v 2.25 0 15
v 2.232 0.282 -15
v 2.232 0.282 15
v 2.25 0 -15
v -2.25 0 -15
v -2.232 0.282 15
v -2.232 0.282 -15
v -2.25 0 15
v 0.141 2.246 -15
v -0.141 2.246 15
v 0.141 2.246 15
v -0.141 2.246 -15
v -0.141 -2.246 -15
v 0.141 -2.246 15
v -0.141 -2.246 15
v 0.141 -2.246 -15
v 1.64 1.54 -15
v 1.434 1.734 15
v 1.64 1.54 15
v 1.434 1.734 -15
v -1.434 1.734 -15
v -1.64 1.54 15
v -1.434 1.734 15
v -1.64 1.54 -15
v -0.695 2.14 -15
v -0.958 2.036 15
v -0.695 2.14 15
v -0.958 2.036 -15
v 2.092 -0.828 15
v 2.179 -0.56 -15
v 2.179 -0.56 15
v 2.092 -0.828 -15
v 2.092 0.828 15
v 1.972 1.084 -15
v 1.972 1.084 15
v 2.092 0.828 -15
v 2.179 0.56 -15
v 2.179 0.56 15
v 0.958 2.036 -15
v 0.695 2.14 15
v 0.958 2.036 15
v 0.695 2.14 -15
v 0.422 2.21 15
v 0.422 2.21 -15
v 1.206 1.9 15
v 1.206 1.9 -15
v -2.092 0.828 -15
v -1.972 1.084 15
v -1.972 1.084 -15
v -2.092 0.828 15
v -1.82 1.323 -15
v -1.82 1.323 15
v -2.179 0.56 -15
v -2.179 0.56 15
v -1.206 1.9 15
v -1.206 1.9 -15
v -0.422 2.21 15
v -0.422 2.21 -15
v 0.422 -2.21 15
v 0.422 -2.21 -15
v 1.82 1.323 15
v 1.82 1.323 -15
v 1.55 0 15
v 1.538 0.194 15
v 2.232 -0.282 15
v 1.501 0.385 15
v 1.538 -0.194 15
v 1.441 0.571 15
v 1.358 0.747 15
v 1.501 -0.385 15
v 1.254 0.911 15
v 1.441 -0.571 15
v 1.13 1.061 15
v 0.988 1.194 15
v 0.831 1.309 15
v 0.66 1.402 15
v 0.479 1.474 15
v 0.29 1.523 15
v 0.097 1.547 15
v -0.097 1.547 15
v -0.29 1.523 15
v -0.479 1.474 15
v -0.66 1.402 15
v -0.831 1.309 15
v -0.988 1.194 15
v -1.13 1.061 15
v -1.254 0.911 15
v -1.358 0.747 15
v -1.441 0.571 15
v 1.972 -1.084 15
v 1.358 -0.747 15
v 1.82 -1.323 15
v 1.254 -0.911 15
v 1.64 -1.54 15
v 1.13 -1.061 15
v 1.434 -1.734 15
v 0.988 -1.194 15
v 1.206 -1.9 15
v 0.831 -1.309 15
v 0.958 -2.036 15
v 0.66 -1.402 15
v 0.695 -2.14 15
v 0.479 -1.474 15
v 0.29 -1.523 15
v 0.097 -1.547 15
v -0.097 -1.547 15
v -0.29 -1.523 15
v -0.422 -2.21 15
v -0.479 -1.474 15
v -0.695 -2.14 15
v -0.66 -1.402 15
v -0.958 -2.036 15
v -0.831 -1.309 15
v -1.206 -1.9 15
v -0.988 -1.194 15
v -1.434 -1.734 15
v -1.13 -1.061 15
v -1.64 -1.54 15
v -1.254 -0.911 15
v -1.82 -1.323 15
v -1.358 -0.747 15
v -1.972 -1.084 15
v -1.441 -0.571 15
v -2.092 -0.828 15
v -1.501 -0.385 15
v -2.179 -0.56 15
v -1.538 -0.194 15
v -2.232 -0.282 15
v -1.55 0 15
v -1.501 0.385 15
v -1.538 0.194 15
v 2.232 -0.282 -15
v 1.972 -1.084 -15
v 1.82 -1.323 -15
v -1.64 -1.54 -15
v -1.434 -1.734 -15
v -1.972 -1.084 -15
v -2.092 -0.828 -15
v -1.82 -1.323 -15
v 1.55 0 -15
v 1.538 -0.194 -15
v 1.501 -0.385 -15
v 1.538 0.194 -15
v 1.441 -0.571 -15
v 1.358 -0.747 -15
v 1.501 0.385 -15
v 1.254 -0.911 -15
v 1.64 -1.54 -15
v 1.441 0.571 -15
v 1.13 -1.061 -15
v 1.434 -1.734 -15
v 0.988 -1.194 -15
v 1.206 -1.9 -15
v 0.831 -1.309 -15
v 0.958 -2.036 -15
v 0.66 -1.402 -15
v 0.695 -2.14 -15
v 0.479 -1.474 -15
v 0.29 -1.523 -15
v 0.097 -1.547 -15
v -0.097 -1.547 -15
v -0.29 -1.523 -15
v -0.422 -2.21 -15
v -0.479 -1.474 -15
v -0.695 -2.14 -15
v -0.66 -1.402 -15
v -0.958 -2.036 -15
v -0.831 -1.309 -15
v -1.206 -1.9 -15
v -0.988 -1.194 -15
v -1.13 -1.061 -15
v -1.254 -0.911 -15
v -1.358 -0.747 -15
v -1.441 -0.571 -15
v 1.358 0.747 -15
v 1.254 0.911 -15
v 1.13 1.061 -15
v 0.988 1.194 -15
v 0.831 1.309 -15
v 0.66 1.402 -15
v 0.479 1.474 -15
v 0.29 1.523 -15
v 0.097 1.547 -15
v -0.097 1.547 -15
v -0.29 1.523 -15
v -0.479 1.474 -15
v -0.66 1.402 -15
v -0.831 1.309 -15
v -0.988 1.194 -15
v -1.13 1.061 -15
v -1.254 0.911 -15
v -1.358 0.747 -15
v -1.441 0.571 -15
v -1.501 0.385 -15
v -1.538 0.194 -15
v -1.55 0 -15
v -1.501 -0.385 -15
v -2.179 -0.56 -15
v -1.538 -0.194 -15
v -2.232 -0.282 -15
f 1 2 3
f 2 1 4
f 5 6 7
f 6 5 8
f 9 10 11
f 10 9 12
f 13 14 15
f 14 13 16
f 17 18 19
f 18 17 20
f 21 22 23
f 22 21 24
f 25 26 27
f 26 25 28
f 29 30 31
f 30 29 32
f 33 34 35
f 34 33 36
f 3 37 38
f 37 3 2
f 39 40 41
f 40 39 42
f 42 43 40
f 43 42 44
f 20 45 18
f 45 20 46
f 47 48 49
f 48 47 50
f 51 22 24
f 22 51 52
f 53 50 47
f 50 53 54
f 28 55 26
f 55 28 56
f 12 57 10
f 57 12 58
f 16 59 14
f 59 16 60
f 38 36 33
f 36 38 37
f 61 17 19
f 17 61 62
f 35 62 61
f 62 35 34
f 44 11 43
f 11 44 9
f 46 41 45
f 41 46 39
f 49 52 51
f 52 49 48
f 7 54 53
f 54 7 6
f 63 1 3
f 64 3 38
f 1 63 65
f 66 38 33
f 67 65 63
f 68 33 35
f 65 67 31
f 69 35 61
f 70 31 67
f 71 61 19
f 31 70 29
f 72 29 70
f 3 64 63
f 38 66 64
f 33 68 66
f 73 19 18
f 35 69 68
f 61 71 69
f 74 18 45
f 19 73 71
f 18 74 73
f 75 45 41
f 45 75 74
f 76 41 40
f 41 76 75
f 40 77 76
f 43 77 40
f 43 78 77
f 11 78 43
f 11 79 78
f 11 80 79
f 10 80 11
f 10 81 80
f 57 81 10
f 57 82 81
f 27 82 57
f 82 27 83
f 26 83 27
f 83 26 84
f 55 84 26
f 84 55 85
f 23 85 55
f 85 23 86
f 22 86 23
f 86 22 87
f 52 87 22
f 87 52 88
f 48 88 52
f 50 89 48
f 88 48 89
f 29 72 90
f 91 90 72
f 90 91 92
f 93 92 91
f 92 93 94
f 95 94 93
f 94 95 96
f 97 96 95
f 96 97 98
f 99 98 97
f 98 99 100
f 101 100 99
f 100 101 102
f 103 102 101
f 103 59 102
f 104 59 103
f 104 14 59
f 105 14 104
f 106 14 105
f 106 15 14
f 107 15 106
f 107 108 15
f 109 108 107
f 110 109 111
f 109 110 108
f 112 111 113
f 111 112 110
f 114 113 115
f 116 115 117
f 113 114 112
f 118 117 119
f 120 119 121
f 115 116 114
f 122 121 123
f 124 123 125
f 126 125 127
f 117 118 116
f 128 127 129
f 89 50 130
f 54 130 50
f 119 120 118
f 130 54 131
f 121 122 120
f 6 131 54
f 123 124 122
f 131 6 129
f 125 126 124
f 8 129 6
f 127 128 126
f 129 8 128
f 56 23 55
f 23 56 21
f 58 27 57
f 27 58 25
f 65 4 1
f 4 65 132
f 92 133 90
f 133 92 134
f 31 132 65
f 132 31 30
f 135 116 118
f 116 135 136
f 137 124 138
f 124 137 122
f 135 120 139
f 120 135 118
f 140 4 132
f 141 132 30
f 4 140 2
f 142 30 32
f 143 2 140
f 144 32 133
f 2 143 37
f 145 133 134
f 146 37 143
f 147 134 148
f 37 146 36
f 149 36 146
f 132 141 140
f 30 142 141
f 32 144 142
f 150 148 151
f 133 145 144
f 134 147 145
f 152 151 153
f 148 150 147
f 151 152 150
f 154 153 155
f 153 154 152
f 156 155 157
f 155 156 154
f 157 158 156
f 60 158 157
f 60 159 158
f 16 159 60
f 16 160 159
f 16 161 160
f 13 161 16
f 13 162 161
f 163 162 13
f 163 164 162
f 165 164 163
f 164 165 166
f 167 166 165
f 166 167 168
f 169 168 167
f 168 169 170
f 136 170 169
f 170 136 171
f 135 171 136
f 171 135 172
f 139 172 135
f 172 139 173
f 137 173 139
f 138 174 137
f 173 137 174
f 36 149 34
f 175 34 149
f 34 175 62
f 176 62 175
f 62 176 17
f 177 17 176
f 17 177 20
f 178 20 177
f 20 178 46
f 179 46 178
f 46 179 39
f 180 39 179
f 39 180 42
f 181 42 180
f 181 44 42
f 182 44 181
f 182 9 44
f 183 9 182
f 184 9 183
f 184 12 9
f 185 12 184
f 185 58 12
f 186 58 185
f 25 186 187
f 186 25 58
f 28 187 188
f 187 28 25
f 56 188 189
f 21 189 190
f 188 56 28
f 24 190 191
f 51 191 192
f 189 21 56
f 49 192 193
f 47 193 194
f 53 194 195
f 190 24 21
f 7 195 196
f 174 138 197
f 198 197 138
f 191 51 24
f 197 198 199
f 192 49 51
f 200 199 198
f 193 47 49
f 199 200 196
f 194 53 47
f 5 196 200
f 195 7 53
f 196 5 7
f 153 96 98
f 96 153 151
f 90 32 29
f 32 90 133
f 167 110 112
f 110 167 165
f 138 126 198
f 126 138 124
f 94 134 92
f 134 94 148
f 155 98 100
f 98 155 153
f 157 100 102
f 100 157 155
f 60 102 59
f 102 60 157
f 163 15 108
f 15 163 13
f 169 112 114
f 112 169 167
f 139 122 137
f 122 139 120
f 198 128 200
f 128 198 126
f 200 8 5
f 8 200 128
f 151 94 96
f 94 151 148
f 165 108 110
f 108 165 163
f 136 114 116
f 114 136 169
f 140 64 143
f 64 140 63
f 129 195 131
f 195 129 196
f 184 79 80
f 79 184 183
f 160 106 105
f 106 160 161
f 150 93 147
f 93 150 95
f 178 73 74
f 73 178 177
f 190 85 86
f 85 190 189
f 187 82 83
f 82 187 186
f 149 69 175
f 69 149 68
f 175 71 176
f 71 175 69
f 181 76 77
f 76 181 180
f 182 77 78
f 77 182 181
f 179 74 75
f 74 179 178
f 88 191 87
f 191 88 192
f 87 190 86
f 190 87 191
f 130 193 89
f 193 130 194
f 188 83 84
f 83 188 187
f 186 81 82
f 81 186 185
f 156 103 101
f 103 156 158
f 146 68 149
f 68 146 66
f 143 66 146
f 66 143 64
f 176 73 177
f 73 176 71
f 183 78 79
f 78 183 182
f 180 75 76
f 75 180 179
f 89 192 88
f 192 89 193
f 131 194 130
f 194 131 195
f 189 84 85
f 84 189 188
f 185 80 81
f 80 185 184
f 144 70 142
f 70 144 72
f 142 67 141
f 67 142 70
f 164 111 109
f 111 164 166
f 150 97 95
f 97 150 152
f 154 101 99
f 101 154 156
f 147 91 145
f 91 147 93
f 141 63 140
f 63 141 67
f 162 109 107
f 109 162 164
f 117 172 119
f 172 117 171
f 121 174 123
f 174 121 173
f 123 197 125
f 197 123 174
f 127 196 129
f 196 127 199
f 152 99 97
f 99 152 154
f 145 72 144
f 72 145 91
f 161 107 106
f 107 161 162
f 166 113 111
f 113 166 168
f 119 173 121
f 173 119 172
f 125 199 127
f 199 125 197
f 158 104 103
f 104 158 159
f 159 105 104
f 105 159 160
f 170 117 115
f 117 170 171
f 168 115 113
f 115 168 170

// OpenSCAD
$fn = 50;


difference() {
	union() {
		translate(v = [0, 0, -15.0000000000]) {
			cylinder(h = 30, r = 2.2500000000);
		}
	}
	union() {
		translate(v = [0, 0, -100.0000000000]) {
			cylinder(h = 200, r = 1.5500000000);
		}
	}
}
